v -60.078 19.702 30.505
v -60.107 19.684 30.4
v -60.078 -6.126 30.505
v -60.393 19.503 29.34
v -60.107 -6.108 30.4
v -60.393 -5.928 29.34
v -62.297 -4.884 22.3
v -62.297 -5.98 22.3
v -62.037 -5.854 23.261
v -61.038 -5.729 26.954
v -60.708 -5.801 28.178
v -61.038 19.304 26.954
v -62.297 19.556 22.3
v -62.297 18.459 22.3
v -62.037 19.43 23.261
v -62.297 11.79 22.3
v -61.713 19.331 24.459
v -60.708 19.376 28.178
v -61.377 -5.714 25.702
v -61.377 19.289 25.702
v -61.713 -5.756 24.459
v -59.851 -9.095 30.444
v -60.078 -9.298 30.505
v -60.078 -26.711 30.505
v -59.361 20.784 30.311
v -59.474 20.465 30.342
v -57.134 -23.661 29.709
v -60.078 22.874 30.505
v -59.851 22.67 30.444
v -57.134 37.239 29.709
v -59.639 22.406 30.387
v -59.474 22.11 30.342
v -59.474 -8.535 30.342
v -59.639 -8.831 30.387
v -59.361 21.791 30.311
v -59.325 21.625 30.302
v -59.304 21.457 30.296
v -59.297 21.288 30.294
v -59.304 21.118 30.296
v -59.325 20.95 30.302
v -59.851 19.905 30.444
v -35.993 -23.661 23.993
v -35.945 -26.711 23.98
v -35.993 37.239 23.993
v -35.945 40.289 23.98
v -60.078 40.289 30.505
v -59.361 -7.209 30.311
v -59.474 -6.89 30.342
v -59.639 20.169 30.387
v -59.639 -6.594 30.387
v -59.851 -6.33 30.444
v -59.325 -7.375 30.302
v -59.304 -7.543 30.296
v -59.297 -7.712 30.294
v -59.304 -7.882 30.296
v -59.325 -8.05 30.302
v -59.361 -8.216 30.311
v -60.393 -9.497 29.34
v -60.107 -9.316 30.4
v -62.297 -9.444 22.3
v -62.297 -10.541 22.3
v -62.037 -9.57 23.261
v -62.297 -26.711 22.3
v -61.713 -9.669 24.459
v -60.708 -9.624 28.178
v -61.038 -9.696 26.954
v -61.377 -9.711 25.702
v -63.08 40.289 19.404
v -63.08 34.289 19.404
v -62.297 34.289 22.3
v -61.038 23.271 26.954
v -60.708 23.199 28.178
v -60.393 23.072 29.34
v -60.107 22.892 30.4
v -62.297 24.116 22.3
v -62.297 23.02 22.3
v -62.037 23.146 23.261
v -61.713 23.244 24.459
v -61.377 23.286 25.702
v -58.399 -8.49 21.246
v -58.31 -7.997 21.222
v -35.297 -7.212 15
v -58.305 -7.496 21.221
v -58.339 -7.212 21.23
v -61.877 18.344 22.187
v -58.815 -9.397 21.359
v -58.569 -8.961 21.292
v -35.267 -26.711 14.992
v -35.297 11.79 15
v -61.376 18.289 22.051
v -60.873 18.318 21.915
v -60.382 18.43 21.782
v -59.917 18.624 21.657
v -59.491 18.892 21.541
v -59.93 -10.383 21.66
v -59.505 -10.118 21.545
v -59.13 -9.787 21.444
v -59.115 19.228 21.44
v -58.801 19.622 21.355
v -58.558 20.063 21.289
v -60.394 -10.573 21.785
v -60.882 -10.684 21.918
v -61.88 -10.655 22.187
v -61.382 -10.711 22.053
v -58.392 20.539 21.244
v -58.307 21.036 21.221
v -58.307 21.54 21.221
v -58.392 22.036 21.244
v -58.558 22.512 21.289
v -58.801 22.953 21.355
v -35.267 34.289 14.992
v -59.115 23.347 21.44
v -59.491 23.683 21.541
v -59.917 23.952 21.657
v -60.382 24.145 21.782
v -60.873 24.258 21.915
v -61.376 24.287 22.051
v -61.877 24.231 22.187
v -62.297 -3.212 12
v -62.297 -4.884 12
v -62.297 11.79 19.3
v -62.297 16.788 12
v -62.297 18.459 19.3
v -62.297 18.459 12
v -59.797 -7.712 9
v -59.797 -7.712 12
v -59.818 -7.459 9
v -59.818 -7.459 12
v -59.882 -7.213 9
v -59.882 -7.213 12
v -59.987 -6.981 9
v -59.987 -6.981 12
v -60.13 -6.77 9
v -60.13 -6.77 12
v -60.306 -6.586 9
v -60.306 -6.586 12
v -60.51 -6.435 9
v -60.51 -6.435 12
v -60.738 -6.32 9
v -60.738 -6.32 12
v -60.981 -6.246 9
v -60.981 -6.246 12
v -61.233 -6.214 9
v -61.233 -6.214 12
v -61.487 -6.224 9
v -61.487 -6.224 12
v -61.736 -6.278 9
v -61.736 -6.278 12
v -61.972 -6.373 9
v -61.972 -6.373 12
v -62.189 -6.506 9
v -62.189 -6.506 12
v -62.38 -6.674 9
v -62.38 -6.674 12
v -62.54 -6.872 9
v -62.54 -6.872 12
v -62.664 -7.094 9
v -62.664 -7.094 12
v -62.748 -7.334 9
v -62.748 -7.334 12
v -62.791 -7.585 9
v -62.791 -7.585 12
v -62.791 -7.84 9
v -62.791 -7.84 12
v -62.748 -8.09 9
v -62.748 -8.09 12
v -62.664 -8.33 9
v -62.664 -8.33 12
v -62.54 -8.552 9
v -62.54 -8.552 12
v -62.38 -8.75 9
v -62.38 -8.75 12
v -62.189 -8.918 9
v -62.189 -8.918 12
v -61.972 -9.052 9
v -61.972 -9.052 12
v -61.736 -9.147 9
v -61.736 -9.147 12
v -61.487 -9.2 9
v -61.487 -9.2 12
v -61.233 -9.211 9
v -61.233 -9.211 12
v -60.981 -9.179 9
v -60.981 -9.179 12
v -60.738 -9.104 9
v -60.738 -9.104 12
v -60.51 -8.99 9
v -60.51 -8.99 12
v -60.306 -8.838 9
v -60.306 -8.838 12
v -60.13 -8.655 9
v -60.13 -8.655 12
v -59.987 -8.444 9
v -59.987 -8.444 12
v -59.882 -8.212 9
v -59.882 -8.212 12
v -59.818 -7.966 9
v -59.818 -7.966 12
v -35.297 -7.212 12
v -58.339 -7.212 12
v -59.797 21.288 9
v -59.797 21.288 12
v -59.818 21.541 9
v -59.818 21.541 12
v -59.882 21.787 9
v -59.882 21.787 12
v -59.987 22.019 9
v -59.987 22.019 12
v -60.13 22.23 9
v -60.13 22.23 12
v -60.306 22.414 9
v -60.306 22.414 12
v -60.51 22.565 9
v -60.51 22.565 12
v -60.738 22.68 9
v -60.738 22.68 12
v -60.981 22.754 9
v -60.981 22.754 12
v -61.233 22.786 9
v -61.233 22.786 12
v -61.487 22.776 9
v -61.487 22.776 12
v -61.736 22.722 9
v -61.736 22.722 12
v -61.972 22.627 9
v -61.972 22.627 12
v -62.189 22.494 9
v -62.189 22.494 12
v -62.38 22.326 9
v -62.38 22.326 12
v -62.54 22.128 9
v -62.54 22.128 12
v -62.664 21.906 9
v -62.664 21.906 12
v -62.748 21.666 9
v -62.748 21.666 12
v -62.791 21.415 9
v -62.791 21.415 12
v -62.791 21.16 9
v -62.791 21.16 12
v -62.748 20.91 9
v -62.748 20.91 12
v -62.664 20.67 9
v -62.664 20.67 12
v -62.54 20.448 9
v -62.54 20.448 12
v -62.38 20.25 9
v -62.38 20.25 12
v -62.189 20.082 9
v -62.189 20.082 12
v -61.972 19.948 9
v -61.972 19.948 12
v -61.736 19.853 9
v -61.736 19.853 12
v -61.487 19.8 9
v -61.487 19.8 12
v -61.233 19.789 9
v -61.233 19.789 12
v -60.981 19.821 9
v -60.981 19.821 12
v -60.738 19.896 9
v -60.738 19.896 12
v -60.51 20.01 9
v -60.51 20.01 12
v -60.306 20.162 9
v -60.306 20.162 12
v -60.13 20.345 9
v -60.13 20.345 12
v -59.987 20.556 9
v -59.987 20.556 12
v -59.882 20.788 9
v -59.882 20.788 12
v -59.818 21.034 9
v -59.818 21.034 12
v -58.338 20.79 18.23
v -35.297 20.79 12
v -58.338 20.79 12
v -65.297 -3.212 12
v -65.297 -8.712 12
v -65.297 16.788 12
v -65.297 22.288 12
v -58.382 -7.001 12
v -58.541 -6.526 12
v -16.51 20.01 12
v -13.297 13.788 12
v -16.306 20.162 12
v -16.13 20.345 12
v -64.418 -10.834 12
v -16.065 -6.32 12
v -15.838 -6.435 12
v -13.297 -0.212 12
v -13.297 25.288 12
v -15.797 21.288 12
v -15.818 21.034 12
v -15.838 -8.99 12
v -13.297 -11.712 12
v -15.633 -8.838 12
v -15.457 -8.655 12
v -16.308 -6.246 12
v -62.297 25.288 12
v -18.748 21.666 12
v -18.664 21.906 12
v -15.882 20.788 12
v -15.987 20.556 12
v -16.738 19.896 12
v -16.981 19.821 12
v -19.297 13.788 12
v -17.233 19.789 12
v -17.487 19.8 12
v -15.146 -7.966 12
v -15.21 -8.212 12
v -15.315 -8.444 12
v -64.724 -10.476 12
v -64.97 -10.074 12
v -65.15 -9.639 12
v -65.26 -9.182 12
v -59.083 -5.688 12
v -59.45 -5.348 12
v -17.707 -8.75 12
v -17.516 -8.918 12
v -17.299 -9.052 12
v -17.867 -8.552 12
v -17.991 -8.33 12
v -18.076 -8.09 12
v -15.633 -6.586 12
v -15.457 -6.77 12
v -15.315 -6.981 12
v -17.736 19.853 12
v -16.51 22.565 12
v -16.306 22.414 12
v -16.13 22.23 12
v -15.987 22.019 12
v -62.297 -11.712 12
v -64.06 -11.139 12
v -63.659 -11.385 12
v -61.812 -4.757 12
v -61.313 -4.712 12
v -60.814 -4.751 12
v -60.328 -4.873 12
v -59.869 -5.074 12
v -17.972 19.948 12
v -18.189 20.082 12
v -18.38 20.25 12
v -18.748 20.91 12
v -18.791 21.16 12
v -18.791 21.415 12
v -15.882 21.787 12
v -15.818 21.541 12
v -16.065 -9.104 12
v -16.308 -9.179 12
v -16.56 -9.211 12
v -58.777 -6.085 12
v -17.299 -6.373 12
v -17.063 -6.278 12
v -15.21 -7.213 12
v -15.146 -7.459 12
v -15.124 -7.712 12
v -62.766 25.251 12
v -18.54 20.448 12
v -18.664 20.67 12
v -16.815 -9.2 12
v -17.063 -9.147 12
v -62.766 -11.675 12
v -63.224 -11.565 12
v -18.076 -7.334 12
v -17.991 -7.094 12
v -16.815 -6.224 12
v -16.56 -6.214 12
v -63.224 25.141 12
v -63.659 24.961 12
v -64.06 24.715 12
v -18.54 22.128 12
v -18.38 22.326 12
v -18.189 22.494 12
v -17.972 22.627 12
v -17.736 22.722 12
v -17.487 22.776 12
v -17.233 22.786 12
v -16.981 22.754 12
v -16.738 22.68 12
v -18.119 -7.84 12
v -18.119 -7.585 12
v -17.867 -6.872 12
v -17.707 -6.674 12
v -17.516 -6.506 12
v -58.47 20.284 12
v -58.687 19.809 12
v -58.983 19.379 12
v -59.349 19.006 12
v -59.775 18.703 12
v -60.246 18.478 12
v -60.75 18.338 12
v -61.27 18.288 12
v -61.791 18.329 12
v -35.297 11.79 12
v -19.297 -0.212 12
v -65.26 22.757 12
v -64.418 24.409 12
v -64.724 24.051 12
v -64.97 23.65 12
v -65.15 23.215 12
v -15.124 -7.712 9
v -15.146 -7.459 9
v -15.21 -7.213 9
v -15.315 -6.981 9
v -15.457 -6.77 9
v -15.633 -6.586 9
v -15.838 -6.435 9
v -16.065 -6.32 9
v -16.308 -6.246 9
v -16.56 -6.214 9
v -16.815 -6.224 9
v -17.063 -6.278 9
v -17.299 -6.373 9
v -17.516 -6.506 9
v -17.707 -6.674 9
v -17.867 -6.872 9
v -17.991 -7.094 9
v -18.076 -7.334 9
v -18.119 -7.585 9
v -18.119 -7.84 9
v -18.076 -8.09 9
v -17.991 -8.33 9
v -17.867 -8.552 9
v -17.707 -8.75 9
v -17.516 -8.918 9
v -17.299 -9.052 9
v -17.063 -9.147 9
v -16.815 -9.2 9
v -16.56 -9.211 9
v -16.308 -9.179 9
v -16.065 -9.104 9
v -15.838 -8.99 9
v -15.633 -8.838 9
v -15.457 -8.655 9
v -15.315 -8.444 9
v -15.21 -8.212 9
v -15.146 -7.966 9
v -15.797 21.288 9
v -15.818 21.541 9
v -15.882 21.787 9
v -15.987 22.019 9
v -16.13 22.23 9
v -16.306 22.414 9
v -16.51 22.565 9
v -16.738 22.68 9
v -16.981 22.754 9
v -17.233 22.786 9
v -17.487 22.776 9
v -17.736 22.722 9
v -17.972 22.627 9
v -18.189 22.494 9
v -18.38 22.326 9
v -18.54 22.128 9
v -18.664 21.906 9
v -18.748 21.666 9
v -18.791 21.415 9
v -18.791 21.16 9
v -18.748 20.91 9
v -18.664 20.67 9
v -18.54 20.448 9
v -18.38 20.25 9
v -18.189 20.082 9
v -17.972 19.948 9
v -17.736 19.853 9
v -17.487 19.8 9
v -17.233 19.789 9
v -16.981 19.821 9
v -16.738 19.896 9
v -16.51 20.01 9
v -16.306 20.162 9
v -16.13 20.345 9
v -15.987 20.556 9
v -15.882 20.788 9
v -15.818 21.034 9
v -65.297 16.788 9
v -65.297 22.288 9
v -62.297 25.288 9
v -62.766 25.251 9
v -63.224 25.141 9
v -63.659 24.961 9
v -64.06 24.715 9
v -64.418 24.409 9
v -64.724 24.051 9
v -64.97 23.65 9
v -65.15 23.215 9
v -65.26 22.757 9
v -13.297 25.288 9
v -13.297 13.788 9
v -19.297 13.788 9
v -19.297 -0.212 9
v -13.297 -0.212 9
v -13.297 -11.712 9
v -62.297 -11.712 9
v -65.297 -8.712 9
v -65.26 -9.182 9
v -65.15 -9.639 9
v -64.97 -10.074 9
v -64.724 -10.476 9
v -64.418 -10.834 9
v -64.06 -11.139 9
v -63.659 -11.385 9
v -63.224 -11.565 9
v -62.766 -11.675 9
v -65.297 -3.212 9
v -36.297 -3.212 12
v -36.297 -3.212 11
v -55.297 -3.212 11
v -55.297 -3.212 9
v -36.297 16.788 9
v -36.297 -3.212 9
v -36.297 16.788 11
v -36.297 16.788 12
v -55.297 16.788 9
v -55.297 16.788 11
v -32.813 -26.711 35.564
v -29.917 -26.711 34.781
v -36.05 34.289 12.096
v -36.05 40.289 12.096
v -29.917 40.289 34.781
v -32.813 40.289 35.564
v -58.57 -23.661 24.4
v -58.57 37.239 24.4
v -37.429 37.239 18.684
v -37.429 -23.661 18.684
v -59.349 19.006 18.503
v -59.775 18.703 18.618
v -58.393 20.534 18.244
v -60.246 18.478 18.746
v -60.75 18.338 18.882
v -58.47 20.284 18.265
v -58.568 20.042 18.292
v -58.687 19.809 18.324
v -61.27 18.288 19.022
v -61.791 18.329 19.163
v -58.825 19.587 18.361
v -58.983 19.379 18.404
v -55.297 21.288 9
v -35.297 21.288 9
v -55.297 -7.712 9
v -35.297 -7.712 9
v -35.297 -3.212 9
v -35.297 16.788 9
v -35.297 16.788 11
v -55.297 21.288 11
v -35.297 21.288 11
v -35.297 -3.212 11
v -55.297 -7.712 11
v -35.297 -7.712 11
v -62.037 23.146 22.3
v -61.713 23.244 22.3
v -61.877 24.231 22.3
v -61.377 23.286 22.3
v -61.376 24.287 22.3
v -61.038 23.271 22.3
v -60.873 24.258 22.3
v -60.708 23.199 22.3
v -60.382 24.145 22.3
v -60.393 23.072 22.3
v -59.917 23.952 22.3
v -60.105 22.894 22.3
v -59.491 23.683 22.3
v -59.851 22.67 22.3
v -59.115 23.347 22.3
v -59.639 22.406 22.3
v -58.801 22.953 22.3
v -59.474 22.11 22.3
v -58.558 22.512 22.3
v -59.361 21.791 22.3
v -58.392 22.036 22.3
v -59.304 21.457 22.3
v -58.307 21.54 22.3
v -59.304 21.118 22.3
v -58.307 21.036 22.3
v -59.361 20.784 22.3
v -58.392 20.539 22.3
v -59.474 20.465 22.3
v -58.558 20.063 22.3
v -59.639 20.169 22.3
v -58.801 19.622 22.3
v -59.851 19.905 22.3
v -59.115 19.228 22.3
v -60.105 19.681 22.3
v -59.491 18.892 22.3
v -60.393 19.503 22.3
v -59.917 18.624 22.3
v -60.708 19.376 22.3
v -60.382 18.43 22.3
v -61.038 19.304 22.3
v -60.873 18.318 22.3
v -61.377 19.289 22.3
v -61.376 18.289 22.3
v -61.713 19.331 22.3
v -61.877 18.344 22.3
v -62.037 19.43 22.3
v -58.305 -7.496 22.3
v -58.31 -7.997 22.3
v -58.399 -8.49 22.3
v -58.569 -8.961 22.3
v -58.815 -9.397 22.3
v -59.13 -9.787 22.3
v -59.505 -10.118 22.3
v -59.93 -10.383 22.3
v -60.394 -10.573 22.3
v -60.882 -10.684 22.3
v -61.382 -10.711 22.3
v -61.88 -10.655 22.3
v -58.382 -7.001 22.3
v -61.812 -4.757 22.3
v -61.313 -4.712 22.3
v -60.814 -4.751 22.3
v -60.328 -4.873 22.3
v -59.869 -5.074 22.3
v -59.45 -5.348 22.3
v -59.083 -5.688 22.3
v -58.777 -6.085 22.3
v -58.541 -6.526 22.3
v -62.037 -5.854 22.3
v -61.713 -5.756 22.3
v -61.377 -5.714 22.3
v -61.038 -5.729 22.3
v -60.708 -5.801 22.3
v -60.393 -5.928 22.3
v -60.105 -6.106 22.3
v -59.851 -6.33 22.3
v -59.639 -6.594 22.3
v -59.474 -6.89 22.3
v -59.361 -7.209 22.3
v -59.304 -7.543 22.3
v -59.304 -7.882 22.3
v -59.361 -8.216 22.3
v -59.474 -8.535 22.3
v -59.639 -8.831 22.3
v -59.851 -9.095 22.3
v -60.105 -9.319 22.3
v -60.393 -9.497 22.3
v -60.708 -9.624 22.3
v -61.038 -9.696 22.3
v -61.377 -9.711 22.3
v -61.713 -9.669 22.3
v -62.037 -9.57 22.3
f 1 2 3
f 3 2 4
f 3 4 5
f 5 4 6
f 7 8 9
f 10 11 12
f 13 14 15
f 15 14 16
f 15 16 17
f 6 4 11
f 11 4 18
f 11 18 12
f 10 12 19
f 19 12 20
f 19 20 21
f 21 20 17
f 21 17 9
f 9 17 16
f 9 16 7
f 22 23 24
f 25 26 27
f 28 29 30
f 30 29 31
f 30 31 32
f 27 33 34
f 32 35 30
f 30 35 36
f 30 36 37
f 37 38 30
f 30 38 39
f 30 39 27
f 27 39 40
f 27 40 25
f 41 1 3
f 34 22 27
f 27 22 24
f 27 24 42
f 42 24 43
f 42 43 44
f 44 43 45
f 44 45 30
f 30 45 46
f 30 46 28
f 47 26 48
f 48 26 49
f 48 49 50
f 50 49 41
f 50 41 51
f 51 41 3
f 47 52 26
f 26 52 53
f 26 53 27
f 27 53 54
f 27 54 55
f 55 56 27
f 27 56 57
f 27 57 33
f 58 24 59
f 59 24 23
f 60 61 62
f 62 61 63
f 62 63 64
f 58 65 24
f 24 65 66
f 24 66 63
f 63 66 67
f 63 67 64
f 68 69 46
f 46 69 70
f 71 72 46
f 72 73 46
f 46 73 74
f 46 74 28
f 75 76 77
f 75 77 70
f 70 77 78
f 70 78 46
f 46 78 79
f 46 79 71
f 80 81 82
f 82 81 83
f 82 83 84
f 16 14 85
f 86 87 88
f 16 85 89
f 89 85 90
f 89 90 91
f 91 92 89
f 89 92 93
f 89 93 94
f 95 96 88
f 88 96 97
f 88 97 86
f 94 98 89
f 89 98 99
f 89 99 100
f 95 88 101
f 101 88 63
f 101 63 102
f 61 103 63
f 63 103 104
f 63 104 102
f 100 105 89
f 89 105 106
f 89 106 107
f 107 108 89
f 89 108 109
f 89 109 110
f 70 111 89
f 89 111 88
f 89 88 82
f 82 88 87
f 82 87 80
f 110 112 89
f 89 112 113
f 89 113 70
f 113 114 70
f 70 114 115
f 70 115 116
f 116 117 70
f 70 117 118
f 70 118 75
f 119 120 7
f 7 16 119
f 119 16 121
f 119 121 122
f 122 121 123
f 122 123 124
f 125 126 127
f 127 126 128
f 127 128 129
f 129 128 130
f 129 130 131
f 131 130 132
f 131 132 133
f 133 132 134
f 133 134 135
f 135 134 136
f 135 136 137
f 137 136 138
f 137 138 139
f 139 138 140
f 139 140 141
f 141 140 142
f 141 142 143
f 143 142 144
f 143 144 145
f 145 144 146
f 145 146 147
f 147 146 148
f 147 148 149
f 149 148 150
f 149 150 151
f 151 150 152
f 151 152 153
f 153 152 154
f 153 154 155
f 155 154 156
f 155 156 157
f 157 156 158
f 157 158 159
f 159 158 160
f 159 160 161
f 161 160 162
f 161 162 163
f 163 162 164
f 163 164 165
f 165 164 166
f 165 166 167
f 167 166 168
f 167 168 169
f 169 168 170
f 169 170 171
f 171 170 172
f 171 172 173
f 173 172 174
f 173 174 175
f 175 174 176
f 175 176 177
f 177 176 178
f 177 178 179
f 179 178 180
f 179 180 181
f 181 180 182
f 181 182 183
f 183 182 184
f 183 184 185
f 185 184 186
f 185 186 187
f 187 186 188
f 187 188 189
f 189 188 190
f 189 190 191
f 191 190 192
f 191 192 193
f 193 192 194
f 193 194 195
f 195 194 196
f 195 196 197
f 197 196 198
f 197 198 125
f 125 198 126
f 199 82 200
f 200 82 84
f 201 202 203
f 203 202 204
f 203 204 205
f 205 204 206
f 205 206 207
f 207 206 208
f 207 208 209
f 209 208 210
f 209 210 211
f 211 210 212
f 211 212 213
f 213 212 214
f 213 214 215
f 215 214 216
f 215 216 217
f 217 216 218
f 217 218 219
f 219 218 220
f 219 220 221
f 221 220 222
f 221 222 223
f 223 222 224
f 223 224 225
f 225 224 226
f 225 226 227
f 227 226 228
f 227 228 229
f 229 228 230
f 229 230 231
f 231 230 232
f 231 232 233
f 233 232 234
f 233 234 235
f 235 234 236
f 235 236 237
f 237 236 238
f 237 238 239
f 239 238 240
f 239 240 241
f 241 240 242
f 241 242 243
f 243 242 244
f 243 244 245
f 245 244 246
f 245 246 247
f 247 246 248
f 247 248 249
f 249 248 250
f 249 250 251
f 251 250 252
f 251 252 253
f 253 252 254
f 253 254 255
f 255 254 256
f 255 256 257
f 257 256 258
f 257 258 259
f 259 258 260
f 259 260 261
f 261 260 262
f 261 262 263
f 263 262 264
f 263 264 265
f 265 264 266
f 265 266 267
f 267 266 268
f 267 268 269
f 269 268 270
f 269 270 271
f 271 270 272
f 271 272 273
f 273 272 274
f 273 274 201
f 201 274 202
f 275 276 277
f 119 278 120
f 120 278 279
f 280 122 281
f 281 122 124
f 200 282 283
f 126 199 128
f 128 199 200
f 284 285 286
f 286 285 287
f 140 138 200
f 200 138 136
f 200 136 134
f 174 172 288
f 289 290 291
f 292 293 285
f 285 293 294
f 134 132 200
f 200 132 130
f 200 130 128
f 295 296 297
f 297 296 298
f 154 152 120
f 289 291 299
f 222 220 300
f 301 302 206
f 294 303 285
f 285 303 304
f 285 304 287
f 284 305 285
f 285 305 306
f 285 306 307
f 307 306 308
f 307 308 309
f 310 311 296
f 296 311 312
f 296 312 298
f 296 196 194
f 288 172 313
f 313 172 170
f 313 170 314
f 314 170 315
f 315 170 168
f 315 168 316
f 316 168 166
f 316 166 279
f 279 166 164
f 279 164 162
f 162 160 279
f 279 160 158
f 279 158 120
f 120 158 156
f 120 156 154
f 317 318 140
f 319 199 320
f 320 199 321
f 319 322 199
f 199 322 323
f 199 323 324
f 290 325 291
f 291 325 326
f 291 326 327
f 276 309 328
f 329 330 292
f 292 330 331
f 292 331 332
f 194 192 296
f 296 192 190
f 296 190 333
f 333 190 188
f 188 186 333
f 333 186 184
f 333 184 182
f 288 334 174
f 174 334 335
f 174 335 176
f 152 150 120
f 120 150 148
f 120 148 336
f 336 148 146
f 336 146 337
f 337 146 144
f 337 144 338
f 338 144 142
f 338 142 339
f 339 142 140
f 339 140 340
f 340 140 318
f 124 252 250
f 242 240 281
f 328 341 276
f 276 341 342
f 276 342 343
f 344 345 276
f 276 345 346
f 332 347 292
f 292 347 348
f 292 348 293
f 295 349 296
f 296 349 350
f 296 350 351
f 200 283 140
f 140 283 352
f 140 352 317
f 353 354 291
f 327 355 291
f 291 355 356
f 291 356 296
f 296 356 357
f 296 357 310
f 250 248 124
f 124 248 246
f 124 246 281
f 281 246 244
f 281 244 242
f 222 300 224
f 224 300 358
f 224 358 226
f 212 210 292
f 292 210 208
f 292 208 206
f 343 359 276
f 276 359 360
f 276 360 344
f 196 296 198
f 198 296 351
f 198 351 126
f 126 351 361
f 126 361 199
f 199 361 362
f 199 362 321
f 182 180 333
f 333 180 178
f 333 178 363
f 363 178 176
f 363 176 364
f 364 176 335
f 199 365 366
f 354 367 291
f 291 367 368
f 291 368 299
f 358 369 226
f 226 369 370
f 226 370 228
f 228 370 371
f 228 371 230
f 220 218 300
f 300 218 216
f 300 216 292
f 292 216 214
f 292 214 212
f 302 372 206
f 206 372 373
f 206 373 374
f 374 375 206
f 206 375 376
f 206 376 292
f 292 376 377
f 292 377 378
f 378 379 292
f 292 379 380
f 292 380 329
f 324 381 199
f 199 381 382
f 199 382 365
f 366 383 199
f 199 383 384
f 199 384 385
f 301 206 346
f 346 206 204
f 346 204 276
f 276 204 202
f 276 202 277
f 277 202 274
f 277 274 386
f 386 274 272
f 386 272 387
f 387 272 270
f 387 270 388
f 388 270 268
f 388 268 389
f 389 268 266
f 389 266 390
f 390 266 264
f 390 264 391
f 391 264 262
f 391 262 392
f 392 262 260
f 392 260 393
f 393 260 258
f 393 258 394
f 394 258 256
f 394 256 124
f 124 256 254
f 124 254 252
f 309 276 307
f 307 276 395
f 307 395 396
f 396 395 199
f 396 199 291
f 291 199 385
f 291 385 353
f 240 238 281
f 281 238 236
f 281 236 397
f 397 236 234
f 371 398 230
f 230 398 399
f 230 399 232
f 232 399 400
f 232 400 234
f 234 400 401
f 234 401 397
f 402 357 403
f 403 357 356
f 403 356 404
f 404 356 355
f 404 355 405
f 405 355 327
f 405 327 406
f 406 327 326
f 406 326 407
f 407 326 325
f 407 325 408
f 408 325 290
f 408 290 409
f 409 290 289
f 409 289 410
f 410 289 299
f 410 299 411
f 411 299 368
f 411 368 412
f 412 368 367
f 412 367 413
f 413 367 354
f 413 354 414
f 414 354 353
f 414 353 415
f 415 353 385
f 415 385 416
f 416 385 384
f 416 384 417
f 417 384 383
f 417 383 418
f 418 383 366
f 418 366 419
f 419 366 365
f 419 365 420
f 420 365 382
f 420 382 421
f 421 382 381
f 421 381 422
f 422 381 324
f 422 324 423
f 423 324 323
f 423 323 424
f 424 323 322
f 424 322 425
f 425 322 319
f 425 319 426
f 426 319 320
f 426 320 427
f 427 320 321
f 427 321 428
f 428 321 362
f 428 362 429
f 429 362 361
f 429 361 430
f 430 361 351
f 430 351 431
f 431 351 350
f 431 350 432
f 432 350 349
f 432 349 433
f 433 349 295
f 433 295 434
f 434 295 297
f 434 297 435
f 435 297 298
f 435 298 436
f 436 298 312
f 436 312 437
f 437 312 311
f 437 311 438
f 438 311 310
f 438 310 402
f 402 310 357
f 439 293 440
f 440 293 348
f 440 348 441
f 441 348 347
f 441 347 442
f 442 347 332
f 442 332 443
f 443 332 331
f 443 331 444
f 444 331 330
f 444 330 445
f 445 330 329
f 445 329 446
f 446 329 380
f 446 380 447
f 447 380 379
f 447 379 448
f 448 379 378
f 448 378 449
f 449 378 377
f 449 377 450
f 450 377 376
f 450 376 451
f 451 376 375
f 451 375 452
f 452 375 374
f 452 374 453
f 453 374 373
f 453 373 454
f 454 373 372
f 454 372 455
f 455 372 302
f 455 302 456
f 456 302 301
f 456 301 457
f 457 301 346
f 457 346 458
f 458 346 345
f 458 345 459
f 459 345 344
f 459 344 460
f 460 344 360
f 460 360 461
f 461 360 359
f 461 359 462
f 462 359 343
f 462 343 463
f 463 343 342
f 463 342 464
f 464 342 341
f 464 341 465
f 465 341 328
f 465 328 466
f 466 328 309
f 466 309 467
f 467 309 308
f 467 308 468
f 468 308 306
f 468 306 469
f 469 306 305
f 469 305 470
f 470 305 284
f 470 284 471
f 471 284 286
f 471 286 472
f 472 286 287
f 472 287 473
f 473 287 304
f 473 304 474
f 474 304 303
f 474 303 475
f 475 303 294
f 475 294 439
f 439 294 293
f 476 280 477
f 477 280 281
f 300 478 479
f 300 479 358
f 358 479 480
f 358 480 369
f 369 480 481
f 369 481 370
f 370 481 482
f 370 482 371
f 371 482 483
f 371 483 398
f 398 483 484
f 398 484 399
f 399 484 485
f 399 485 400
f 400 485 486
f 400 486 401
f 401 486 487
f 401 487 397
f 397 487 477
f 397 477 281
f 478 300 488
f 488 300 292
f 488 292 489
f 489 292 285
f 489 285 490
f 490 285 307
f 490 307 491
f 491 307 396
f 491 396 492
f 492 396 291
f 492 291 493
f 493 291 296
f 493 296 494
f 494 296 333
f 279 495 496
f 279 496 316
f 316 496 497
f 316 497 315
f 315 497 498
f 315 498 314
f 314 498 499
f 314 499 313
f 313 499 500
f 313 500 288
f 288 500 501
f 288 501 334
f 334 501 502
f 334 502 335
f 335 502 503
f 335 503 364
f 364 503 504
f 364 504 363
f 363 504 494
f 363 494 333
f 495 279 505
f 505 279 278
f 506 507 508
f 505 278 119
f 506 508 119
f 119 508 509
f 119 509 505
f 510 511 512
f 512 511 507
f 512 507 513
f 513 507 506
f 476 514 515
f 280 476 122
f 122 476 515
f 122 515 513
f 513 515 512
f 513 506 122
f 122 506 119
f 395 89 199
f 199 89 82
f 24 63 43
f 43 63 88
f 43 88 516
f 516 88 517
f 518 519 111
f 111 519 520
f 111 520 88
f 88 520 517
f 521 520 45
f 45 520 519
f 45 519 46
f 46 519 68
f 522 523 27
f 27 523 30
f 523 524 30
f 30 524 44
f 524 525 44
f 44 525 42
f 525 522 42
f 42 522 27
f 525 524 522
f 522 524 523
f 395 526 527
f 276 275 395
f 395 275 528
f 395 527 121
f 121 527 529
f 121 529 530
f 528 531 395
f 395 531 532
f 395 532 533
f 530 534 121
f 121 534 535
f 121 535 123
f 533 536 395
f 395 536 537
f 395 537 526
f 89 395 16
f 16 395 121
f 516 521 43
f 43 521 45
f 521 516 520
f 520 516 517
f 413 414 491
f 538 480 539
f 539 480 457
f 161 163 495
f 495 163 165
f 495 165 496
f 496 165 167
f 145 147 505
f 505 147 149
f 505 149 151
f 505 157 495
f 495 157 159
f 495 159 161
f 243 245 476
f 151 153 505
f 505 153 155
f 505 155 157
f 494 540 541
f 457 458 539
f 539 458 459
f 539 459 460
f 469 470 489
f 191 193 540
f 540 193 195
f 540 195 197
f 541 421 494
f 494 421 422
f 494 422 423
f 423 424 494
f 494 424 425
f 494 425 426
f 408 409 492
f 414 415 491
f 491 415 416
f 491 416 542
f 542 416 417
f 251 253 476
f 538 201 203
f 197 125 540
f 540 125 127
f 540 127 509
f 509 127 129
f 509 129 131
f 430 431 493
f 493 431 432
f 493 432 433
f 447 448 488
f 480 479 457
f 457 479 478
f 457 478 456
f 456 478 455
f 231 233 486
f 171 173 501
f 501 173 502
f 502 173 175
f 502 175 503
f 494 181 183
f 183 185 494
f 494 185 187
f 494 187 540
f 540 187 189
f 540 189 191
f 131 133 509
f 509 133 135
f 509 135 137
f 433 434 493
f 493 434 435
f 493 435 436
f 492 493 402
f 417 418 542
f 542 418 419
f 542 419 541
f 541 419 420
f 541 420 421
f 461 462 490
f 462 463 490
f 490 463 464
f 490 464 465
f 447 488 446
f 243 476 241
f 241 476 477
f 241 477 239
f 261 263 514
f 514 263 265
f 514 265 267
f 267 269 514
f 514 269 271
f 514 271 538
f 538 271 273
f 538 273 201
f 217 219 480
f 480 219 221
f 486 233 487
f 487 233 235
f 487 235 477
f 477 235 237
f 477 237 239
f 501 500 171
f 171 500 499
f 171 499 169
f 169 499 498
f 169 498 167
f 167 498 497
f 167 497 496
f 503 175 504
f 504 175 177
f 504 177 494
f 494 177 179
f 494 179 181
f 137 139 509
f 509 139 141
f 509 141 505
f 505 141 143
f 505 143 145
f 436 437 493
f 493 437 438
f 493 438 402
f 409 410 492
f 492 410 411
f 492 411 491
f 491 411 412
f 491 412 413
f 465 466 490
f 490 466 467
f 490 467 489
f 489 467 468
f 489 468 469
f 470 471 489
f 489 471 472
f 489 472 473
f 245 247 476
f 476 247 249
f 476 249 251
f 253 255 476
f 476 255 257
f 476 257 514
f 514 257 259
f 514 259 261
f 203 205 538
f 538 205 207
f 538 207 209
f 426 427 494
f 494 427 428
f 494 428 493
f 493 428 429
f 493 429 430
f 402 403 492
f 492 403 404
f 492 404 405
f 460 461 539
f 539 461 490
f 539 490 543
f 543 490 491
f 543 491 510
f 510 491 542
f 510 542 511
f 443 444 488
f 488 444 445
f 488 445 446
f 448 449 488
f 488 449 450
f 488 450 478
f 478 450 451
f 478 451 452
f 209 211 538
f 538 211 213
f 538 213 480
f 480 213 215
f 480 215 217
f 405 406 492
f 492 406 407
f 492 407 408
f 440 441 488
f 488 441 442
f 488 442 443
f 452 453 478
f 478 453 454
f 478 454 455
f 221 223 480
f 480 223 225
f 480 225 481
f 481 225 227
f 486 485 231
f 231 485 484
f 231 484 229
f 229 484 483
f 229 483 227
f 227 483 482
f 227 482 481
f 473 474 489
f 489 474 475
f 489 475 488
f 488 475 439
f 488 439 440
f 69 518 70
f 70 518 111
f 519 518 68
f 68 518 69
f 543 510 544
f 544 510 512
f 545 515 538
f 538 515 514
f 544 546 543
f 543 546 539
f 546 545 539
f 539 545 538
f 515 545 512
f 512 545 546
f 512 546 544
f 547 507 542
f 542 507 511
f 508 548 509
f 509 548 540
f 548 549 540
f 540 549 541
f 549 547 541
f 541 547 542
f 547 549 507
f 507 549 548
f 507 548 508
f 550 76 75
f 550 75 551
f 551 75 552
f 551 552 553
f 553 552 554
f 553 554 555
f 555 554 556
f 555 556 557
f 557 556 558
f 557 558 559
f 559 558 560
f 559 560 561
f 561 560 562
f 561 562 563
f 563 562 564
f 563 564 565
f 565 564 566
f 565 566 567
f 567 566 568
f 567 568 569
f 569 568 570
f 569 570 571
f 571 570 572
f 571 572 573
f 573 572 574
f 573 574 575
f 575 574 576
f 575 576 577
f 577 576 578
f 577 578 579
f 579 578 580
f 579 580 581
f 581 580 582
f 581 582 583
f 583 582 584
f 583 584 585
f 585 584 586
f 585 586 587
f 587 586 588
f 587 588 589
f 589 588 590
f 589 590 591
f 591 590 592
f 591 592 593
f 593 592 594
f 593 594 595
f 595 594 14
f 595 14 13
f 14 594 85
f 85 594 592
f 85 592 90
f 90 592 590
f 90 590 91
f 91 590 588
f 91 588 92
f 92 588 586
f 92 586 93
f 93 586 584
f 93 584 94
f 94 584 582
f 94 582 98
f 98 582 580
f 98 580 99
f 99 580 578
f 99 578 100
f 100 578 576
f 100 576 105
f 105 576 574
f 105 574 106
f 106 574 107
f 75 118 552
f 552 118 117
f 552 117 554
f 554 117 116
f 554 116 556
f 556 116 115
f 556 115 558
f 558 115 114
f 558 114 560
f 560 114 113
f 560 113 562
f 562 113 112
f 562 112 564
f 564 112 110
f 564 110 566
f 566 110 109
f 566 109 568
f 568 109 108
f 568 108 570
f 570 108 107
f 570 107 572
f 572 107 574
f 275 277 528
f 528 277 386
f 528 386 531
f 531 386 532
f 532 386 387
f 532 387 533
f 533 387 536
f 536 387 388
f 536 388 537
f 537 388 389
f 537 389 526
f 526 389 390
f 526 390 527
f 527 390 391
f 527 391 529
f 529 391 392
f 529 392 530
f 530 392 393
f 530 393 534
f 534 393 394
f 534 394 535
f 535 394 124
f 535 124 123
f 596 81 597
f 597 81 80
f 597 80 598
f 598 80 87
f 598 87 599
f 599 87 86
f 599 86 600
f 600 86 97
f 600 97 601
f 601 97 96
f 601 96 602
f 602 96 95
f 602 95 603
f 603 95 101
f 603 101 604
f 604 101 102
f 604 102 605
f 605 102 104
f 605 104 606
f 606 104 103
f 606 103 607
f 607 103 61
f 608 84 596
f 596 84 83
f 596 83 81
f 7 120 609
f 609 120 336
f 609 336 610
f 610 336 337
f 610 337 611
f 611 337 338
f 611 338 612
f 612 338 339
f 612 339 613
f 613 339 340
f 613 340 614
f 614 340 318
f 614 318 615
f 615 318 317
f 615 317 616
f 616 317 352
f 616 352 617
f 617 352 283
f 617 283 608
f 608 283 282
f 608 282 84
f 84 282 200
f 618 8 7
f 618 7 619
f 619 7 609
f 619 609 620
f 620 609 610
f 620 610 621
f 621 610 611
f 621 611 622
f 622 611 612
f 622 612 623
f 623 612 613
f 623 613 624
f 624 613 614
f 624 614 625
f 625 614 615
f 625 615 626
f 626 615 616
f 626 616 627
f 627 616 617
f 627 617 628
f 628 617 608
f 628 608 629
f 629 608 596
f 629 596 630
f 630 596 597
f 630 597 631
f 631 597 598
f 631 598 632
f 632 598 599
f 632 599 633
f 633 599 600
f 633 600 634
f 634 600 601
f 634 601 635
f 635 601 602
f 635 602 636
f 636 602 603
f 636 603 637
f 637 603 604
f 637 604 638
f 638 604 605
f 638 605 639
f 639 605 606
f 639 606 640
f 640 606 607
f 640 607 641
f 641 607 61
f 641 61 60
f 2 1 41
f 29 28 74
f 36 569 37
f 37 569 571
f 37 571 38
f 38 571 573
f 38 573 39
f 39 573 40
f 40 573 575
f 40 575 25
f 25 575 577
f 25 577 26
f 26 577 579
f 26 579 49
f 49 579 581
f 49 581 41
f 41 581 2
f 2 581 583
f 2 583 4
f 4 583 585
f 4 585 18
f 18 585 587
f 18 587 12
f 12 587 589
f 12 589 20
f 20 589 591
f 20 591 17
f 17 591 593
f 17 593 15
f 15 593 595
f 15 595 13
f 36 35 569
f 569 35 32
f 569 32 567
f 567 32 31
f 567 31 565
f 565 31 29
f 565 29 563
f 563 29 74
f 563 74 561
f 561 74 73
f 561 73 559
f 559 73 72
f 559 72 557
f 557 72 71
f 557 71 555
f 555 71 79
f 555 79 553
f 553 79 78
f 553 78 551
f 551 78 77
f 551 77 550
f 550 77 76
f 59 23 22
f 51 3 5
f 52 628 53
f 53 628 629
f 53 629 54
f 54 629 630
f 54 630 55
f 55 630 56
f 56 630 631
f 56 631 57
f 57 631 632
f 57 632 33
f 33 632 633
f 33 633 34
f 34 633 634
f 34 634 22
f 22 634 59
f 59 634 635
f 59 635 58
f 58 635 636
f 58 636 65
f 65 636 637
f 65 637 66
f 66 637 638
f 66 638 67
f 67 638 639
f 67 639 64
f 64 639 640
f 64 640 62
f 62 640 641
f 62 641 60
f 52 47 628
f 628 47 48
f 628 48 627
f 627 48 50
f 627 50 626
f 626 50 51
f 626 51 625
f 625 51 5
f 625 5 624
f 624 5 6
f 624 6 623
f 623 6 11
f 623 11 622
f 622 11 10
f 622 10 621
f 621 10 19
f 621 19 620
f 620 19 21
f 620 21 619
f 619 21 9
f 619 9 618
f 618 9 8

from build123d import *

# Parameters (mm, degrees)
CROQUIS1_W              = 52
CROQUIS1_H              = 37
SALIENTE_EXTRUIR1_DEPTH = 3
REDONDEO1_R             = 3
CROQUIS2_R              = 1.5
CORTAR_EXTRUIR1_DEPTH   = 3
CROQUIS3_W              = 29
CROQUIS3_H              = 20
CROQUIS3_W_2            = 6
CROQUIS3_H_2            = 14
CORTAR_EXTRUIR2_DEPTH   = 3
SALIENTE_EXTRUIR2_DEPTH = 9
CROQUIS5_W              = 36
CROQUIS5_H              = 28.002550662
SALIENTE_EXTRUIR3_DEPTH = 10.3
CORTAR_EXTRUIR3_START   = -28.002551
CORTAR_EXTRUIR3_DEPTH   = 28.002551
SALIENTE_EXTRUIR4_DEPTH = 8.5
CROQUIS8_W              = 21.9
CROQUIS8_H              = 60.9
CORTAR_EXTRUIR4_DEPTH   = 5.5
CORTAR_EXTRUIR5_DEPTH   = 9
CORTAR_EXTRUIR6_START   = -28.002551
CROQUIS12_W             = 9
CROQUIS12_H             = 1.570892211
CORTAR_EXTRUIR6_DEPTH   = 28.002551
CROQUIS13_W             = 3
CROQUIS13_H             = 67
SALIENTE_EXTRUIR5_DEPTH = 12
CORTAR_EXTRUIR7_START   = -28.002551
CROQUIS14_W             = 31
CROQUIS14_H             = 9
CORTAR_EXTRUIR7_DEPTH   = 28.002551
CROQUIS17_R             = 1.5
SALIENTE_EXTRUIR6_DEPTH = 9
CORTAR_EXTRUIR8_START   = -37
CROQUIS18_W             = 54.197150846
CROQUIS18_H             = 9
CORTAR_EXTRUIR8_DEPTH   = 37
CORTAR_EXTRUIR9_REACH   = 83.194
CROQUIS19_R             = 1.5
CROQUIS20_W             = 28
CROQUIS20_H             = 6
SALIENTE_EXTRUIR7_DEPTH = 3
CROQUIS21_W             = 20
CROQUIS21_H             = 4.5
CORTAR_EXTRUIR10_DEPTH  = 2
CROQUIS22_R             = 3
CORTAR_EXTRUIR11_DEPTH  = 10.3
CORTAR_EXTRUIR12_REACH  = 82.263
CROQUIS23_R             = 2


with BuildPart() as part:
    # Croquis1 → Saliente-Extruir1 (new body)
    with BuildSketch(Plane.XY):
        with Locations((-39.296803653, 6.787671233)):
            Rectangle(CROQUIS1_W, CROQUIS1_H)
    extrude(amount=SALIENTE_EXTRUIR1_DEPTH)

    # Redondeo1
    redondeo1_edges = [part.edges().sort_by_distance(p)[0] for p in [
        (-65.296803653, 25.287671233, 1.5),
        (-65.296803653, -11.712328767, 1.5),
    ]]
    fillet(redondeo1_edges, radius=REDONDEO1_R)

    # Croquis2 → Cortar-Extruir1 (cut)
    with BuildSketch(Plane.XY.offset(3)):
        with Locations((-61.296803653, 21.287671233)):
            Circle(CROQUIS2_R)
        with Locations((-61.296803653, -7.712328767)):
            Circle(CROQUIS2_R)
        with Locations((-16.624072342, -7.712328767)):
            Circle(CROQUIS2_R)
        with Locations((-17.296803653, 21.287671233)):
            Circle(CROQUIS2_R)
    extrude(amount=-CORTAR_EXTRUIR1_DEPTH, mode=Mode.SUBTRACT)

    # Croquis3 → Cortar-Extruir2 (cut)
    with BuildSketch(Plane.XY.offset(3)):
        with Locations((-50.796803653, 6.787671233)):
            Rectangle(CROQUIS3_W, CROQUIS3_H)
        with Locations((-16.296803653, 6.787671233)):
            Rectangle(CROQUIS3_W_2, CROQUIS3_H_2)
    extrude(amount=-CORTAR_EXTRUIR2_DEPTH, mode=Mode.SUBTRACT)

    # Croquis4 → Saliente-Extruir2 (add)
    with BuildSketch(Plane.XY.offset(3)):
        Polygon((-57.296803653, 16.787671233), (-57.296803653, 20.790221895), (-26.296803653, 20.790221895), (-26.296803653, -7.212328767), (-57.296803653, -7.212328767), (-57.296803653, -3.212328767), (-36.296803653, -3.212328767), (-36.296803653, 16.787671233), align=None)
    extrude(amount=SALIENTE_EXTRUIR2_DEPTH)

    # Croquis5 → Saliente-Extruir3 (add)
    with BuildSketch(Plane.XY.offset(12)):
        with Locations((-44.296803653, 6.788946564)):
            Rectangle(CROQUIS5_W, CROQUIS5_H)
    extrude(amount=SALIENTE_EXTRUIR3_DEPTH)

    # Croquis6 → Cortar-Extruir3 (cut)
    with BuildSketch(Plane.XZ.offset(7.212328767).offset(CORTAR_EXTRUIR3_START)):
        Polygon((-35.296803653, 15), (-35.296803653, 12.995381041), (-26.296803653, 12.995381041), (-26.296803653, 14.757444162), (-26.296803653, 22.3), (-62.296803653, 22.3), align=None)
    extrude(amount=CORTAR_EXTRUIR3_DEPTH, mode=Mode.SUBTRACT)

    # Croquis7 → Saliente-Extruir4 (add)
    with BuildSketch(Plane(origin=(1.374852463, 0, 5.085070754), x_dir=(0.9653390502996949, 0, -0.2609990765625102), z_dir=(0.2609990765625102, 0, 0.9653390502996949))):
        Polygon((-65.957816682, 6.788946564), (-65.957816682, -26.711053436), (-37.957816682, -26.711053436), (-37.957816682, 40.288946564), (-65.957816682, 40.288946564), align=None)
    extrude(amount=SALIENTE_EXTRUIR4_DEPTH)

    # Croquis8 → Cortar-Extruir4 (cut)
    with BuildSketch(Plane(origin=(3.593344614, 0, 13.290452681), x_dir=(0.9653390502996949, 0, -0.26099907656251026), z_dir=(0.26099907656251026, 0, 0.9653390502996949))):
        with Locations((-51.957816682, 6.788946564)):
            Rectangle(CROQUIS8_W, CROQUIS8_H)
    extrude(amount=-CORTAR_EXTRUIR4_DEPTH, mode=Mode.SUBTRACT)

    # Croquis10 → Cortar-Extruir5 (cut)
    with BuildSketch(Plane(origin=(0, 20.790221895, 0), x_dir=(1, 0, 0), z_dir=(0, 1, 0))):
        Polygon((-62.296803653, -22.3), (-35.296803653, -15), (-35.296803653, -12), (-62.296803653, -19.3), align=None)
    extrude(amount=-CORTAR_EXTRUIR5_DEPTH, mode=Mode.SUBTRACT)

    # Croquis12 → Cortar-Extruir6 (cut)
    with BuildSketch(Plane(origin=(0, 20.790221895, 0), x_dir=(1, 0, 0), z_dir=(0, 1, 0)).offset(CORTAR_EXTRUIR6_START)):
        with Locations((-30.796803653, -12.209934936)):
            Rectangle(CROQUIS12_W, CROQUIS12_H)
    extrude(amount=CORTAR_EXTRUIR6_DEPTH, mode=Mode.SUBTRACT)

    # Croquis13 → Saliente-Extruir5 (add)
    with BuildSketch(Plane(origin=(3.593344614, 0, 13.290452681), x_dir=(0.9653390502996949, 0, -0.26099907656251026), z_dir=(0.26099907656251026, 0, 0.9653390502996949))):
        with Locations((-39.457816682, 6.788946564)):
            Rectangle(CROQUIS13_W, CROQUIS13_H)
    extrude(amount=SALIENTE_EXTRUIR5_DEPTH)

    # Croquis14 → Cortar-Extruir7 (cut)
    with BuildSketch(Plane.XZ.offset(7.212328767).offset(CORTAR_EXTRUIR7_START)):
        with Locations((-41.796803653, 7.5)):
            Rectangle(CROQUIS14_W, CROQUIS14_H)
    extrude(amount=CORTAR_EXTRUIR7_DEPTH, mode=Mode.SUBTRACT)


with BuildPart() as cortar_extruir7_piece_1:
    # of the separate pieces the step leaves, piece 1, a body of its own (cortar_extruir7_pieces)
    add(part.part.solids().sort_by_distance((-62.296803653, -26.711053436, 22.3))[0])



with BuildPart() as cortar_extruir7_piece_2:
    # of the separate pieces the step leaves, piece 2, a body of its own (cortar_extruir7_pieces)
    add(part.part.solids().sort_by_distance((-62.296803653, 25.287671233, 3))[0])


with BuildPart() as cortar_extruir7_piece_1_1:
    add(cortar_extruir7_piece_1.part)

    add(cortar_extruir7_piece_2.part)  # Saliente-Extruir6 merges Cortar-Extruir7 piece 2
    # Croquis17 → Saliente-Extruir6 (add)
    with BuildSketch(Plane.XY.offset(3)):
        with BuildLine():
            Line((-13.296803653, -0.212328767), (-19.296803653, -0.212328767))
            Line((-19.296803653, -0.212328767), (-19.296803653, 13.787671233))
            Line((-19.296803653, 13.787671233), (-13.296803653, 13.787671233))
            Line((-13.296803653, 13.787671233), (-13.296803653, 25.287671233))
            Line((-13.296803653, 25.287671233), (-62.296803653, 25.287671233))
            ThreePointArc((-62.296803653, 25.287671233), (-64.418123997, 24.408991576), (-65.296803653, 22.287671233))
            Line((-65.296803653, 22.287671233), (-65.296803653, 16.787671233))
            Line((-65.296803653, 16.787671233), (-36.296803653, 16.787671233))
            Line((-36.296803653, 16.787671233), (-36.296803653, -3.212328767))
            Line((-36.296803653, -3.212328767), (-65.296803653, -3.212328767))
            Line((-65.296803653, -3.212328767), (-65.296803653, -8.712328767))
            ThreePointArc((-65.296803653, -8.712328767), (-64.418123997, -10.833649111), (-62.296803653, -11.712328767))
            Line((-62.296803653, -11.712328767), (-13.296803653, -11.712328767))
            Line((-13.296803653, -11.712328767), (-13.296803653, -0.212328767))
        make_face()
        with Locations((-61.296803653, 21.287671233)):
            Circle(CROQUIS17_R, mode=Mode.SUBTRACT)
        with Locations((-61.296803653, -7.712328767)):
            Circle(CROQUIS17_R, mode=Mode.SUBTRACT)
        with Locations((-16.624072342, -7.712328767)):
            Circle(CROQUIS17_R, mode=Mode.SUBTRACT)
        with Locations((-17.296803653, 21.287671233)):
            Circle(CROQUIS17_R, mode=Mode.SUBTRACT)
    extrude(amount=SALIENTE_EXTRUIR6_DEPTH)

    # Croquis18 → Cortar-Extruir8 (cut)
    with BuildSketch(Plane.XZ.offset(11.712328767).offset(CORTAR_EXTRUIR8_START)):
        with Locations((-40.395379076, 4.5)):
            Rectangle(CROQUIS18_W, CROQUIS18_H)
    extrude(amount=CORTAR_EXTRUIR8_DEPTH, mode=Mode.SUBTRACT)

    # Cortar-Extruir9: up to this plane
    cortar_extruir9_end = Plane(origin=(3.593344614, 0, 13.290452681), z_dir=(0.26099907656251026, 0, 0.9653390502996949))
    # Croquis19 → Cortar-Extruir9 (cut, up to the surface)
    with BuildSketch(Plane(origin=(0, 0, 9), x_dir=(-1, 0, 0), z_dir=(0, 0, -1)), mode=Mode.PRIVATE) as cortar_extruir9_sk1:
        with Locations(Location((61.296803653, 21.287671233, 0), (0, 0, 180))):
            Circle(CROQUIS19_R)
    cortar_extruir9_tool1 = split(extrude(cortar_extruir9_sk1.sketch, amount=-CORTAR_EXTRUIR9_REACH, mode=Mode.PRIVATE), bisect_by=cortar_extruir9_end, keep=Keep.BOTH, mode=Mode.PRIVATE)
    add(cortar_extruir9_tool1.solids().sort_by_distance((-61.296804, 21.287671, 9))[0], mode=Mode.SUBTRACT)
    # Croquis19 → Cortar-Extruir9 (cut, up to the surface)
    with BuildSketch(Plane(origin=(0, 0, 9), x_dir=(-1, 0, 0), z_dir=(0, 0, -1)), mode=Mode.PRIVATE) as cortar_extruir9_sk2:
        with Locations(Location((61.296803653, -7.712328767, 0), (0, 0, 180))):
            Circle(CROQUIS19_R)
    cortar_extruir9_tool2 = split(extrude(cortar_extruir9_sk2.sketch, amount=-CORTAR_EXTRUIR9_REACH, mode=Mode.PRIVATE), bisect_by=cortar_extruir9_end, keep=Keep.BOTH, mode=Mode.PRIVATE)
    add(cortar_extruir9_tool2.solids().sort_by_distance((-61.296804, -7.712329, 9))[0], mode=Mode.SUBTRACT)

    # Croquis20 → Saliente-Extruir7 (add)
    with BuildSketch(Plane(origin=(1.374852463, 0, 5.085070754), x_dir=(-0.9653390502996949, 0, 0.26099907656251026), z_dir=(-0.26099907656251026, 0, -0.9653390502996949))):
        with Locations((51.957816682, 37.288946564)):
            Rectangle(CROQUIS20_W, CROQUIS20_H)
    extrude(amount=SALIENTE_EXTRUIR7_DEPTH)

    # Croquis21 → Cortar-Extruir10 (cut)
    with BuildSketch(Plane(origin=(0, 0, 9), x_dir=(-1, 0, 0), z_dir=(0, 0, -1))):
        with Locations((45.296803653, 19.037671233)):
            Rectangle(CROQUIS21_W, CROQUIS21_H)
        with Locations((45.296803653, -5.462328767)):
            Rectangle(CROQUIS21_W, CROQUIS21_H)
    extrude(amount=-CORTAR_EXTRUIR10_DEPTH, mode=Mode.SUBTRACT)

    # Croquis22 → Cortar-Extruir11 (cut)
    with BuildSketch(Plane.XY.offset(12)):
        with Locations((-61.296803653, 21.287671233)):
            Circle(CROQUIS22_R)
        with Locations((-61.296803653, -7.712328767)):
            Circle(CROQUIS22_R)
    extrude(amount=CORTAR_EXTRUIR11_DEPTH, mode=Mode.SUBTRACT)

    # Cortar-Extruir12: up to this plane
    cortar_extruir12_end = Plane(origin=(3.593344614, 0, 13.290452681), z_dir=(0.26099907656251026, 0, 0.9653390502996949))
    # Croquis23 → Cortar-Extruir12 (cut, up to the surface)
    with BuildSketch(Plane.XY.offset(12), mode=Mode.PRIVATE) as cortar_extruir12_sk1:
        with Locations((-61.296803653, 21.287671233)):
            Circle(CROQUIS23_R)
    cortar_extruir12_tool1 = split(extrude(cortar_extruir12_sk1.sketch, amount=CORTAR_EXTRUIR12_REACH, mode=Mode.PRIVATE), bisect_by=cortar_extruir12_end, keep=Keep.BOTH, mode=Mode.PRIVATE)
    add(cortar_extruir12_tool1.solids().sort_by_distance((-61.296804, 21.287671, 12))[0], mode=Mode.SUBTRACT)
    # Croquis23 → Cortar-Extruir12 (cut, up to the surface)
    with BuildSketch(Plane.XY.offset(12), mode=Mode.PRIVATE) as cortar_extruir12_sk2:
        with Locations((-61.296803653, -7.712328767)):
            Circle(CROQUIS23_R)
    cortar_extruir12_tool2 = split(extrude(cortar_extruir12_sk2.sketch, amount=CORTAR_EXTRUIR12_REACH, mode=Mode.PRIVATE), bisect_by=cortar_extruir12_end, keep=Keep.BOTH, mode=Mode.PRIVATE)
    add(cortar_extruir12_tool2.solids().sort_by_distance((-61.296804, -7.712329, 12))[0], mode=Mode.SUBTRACT)


solid = cortar_extruir7_piece_1_1.part
